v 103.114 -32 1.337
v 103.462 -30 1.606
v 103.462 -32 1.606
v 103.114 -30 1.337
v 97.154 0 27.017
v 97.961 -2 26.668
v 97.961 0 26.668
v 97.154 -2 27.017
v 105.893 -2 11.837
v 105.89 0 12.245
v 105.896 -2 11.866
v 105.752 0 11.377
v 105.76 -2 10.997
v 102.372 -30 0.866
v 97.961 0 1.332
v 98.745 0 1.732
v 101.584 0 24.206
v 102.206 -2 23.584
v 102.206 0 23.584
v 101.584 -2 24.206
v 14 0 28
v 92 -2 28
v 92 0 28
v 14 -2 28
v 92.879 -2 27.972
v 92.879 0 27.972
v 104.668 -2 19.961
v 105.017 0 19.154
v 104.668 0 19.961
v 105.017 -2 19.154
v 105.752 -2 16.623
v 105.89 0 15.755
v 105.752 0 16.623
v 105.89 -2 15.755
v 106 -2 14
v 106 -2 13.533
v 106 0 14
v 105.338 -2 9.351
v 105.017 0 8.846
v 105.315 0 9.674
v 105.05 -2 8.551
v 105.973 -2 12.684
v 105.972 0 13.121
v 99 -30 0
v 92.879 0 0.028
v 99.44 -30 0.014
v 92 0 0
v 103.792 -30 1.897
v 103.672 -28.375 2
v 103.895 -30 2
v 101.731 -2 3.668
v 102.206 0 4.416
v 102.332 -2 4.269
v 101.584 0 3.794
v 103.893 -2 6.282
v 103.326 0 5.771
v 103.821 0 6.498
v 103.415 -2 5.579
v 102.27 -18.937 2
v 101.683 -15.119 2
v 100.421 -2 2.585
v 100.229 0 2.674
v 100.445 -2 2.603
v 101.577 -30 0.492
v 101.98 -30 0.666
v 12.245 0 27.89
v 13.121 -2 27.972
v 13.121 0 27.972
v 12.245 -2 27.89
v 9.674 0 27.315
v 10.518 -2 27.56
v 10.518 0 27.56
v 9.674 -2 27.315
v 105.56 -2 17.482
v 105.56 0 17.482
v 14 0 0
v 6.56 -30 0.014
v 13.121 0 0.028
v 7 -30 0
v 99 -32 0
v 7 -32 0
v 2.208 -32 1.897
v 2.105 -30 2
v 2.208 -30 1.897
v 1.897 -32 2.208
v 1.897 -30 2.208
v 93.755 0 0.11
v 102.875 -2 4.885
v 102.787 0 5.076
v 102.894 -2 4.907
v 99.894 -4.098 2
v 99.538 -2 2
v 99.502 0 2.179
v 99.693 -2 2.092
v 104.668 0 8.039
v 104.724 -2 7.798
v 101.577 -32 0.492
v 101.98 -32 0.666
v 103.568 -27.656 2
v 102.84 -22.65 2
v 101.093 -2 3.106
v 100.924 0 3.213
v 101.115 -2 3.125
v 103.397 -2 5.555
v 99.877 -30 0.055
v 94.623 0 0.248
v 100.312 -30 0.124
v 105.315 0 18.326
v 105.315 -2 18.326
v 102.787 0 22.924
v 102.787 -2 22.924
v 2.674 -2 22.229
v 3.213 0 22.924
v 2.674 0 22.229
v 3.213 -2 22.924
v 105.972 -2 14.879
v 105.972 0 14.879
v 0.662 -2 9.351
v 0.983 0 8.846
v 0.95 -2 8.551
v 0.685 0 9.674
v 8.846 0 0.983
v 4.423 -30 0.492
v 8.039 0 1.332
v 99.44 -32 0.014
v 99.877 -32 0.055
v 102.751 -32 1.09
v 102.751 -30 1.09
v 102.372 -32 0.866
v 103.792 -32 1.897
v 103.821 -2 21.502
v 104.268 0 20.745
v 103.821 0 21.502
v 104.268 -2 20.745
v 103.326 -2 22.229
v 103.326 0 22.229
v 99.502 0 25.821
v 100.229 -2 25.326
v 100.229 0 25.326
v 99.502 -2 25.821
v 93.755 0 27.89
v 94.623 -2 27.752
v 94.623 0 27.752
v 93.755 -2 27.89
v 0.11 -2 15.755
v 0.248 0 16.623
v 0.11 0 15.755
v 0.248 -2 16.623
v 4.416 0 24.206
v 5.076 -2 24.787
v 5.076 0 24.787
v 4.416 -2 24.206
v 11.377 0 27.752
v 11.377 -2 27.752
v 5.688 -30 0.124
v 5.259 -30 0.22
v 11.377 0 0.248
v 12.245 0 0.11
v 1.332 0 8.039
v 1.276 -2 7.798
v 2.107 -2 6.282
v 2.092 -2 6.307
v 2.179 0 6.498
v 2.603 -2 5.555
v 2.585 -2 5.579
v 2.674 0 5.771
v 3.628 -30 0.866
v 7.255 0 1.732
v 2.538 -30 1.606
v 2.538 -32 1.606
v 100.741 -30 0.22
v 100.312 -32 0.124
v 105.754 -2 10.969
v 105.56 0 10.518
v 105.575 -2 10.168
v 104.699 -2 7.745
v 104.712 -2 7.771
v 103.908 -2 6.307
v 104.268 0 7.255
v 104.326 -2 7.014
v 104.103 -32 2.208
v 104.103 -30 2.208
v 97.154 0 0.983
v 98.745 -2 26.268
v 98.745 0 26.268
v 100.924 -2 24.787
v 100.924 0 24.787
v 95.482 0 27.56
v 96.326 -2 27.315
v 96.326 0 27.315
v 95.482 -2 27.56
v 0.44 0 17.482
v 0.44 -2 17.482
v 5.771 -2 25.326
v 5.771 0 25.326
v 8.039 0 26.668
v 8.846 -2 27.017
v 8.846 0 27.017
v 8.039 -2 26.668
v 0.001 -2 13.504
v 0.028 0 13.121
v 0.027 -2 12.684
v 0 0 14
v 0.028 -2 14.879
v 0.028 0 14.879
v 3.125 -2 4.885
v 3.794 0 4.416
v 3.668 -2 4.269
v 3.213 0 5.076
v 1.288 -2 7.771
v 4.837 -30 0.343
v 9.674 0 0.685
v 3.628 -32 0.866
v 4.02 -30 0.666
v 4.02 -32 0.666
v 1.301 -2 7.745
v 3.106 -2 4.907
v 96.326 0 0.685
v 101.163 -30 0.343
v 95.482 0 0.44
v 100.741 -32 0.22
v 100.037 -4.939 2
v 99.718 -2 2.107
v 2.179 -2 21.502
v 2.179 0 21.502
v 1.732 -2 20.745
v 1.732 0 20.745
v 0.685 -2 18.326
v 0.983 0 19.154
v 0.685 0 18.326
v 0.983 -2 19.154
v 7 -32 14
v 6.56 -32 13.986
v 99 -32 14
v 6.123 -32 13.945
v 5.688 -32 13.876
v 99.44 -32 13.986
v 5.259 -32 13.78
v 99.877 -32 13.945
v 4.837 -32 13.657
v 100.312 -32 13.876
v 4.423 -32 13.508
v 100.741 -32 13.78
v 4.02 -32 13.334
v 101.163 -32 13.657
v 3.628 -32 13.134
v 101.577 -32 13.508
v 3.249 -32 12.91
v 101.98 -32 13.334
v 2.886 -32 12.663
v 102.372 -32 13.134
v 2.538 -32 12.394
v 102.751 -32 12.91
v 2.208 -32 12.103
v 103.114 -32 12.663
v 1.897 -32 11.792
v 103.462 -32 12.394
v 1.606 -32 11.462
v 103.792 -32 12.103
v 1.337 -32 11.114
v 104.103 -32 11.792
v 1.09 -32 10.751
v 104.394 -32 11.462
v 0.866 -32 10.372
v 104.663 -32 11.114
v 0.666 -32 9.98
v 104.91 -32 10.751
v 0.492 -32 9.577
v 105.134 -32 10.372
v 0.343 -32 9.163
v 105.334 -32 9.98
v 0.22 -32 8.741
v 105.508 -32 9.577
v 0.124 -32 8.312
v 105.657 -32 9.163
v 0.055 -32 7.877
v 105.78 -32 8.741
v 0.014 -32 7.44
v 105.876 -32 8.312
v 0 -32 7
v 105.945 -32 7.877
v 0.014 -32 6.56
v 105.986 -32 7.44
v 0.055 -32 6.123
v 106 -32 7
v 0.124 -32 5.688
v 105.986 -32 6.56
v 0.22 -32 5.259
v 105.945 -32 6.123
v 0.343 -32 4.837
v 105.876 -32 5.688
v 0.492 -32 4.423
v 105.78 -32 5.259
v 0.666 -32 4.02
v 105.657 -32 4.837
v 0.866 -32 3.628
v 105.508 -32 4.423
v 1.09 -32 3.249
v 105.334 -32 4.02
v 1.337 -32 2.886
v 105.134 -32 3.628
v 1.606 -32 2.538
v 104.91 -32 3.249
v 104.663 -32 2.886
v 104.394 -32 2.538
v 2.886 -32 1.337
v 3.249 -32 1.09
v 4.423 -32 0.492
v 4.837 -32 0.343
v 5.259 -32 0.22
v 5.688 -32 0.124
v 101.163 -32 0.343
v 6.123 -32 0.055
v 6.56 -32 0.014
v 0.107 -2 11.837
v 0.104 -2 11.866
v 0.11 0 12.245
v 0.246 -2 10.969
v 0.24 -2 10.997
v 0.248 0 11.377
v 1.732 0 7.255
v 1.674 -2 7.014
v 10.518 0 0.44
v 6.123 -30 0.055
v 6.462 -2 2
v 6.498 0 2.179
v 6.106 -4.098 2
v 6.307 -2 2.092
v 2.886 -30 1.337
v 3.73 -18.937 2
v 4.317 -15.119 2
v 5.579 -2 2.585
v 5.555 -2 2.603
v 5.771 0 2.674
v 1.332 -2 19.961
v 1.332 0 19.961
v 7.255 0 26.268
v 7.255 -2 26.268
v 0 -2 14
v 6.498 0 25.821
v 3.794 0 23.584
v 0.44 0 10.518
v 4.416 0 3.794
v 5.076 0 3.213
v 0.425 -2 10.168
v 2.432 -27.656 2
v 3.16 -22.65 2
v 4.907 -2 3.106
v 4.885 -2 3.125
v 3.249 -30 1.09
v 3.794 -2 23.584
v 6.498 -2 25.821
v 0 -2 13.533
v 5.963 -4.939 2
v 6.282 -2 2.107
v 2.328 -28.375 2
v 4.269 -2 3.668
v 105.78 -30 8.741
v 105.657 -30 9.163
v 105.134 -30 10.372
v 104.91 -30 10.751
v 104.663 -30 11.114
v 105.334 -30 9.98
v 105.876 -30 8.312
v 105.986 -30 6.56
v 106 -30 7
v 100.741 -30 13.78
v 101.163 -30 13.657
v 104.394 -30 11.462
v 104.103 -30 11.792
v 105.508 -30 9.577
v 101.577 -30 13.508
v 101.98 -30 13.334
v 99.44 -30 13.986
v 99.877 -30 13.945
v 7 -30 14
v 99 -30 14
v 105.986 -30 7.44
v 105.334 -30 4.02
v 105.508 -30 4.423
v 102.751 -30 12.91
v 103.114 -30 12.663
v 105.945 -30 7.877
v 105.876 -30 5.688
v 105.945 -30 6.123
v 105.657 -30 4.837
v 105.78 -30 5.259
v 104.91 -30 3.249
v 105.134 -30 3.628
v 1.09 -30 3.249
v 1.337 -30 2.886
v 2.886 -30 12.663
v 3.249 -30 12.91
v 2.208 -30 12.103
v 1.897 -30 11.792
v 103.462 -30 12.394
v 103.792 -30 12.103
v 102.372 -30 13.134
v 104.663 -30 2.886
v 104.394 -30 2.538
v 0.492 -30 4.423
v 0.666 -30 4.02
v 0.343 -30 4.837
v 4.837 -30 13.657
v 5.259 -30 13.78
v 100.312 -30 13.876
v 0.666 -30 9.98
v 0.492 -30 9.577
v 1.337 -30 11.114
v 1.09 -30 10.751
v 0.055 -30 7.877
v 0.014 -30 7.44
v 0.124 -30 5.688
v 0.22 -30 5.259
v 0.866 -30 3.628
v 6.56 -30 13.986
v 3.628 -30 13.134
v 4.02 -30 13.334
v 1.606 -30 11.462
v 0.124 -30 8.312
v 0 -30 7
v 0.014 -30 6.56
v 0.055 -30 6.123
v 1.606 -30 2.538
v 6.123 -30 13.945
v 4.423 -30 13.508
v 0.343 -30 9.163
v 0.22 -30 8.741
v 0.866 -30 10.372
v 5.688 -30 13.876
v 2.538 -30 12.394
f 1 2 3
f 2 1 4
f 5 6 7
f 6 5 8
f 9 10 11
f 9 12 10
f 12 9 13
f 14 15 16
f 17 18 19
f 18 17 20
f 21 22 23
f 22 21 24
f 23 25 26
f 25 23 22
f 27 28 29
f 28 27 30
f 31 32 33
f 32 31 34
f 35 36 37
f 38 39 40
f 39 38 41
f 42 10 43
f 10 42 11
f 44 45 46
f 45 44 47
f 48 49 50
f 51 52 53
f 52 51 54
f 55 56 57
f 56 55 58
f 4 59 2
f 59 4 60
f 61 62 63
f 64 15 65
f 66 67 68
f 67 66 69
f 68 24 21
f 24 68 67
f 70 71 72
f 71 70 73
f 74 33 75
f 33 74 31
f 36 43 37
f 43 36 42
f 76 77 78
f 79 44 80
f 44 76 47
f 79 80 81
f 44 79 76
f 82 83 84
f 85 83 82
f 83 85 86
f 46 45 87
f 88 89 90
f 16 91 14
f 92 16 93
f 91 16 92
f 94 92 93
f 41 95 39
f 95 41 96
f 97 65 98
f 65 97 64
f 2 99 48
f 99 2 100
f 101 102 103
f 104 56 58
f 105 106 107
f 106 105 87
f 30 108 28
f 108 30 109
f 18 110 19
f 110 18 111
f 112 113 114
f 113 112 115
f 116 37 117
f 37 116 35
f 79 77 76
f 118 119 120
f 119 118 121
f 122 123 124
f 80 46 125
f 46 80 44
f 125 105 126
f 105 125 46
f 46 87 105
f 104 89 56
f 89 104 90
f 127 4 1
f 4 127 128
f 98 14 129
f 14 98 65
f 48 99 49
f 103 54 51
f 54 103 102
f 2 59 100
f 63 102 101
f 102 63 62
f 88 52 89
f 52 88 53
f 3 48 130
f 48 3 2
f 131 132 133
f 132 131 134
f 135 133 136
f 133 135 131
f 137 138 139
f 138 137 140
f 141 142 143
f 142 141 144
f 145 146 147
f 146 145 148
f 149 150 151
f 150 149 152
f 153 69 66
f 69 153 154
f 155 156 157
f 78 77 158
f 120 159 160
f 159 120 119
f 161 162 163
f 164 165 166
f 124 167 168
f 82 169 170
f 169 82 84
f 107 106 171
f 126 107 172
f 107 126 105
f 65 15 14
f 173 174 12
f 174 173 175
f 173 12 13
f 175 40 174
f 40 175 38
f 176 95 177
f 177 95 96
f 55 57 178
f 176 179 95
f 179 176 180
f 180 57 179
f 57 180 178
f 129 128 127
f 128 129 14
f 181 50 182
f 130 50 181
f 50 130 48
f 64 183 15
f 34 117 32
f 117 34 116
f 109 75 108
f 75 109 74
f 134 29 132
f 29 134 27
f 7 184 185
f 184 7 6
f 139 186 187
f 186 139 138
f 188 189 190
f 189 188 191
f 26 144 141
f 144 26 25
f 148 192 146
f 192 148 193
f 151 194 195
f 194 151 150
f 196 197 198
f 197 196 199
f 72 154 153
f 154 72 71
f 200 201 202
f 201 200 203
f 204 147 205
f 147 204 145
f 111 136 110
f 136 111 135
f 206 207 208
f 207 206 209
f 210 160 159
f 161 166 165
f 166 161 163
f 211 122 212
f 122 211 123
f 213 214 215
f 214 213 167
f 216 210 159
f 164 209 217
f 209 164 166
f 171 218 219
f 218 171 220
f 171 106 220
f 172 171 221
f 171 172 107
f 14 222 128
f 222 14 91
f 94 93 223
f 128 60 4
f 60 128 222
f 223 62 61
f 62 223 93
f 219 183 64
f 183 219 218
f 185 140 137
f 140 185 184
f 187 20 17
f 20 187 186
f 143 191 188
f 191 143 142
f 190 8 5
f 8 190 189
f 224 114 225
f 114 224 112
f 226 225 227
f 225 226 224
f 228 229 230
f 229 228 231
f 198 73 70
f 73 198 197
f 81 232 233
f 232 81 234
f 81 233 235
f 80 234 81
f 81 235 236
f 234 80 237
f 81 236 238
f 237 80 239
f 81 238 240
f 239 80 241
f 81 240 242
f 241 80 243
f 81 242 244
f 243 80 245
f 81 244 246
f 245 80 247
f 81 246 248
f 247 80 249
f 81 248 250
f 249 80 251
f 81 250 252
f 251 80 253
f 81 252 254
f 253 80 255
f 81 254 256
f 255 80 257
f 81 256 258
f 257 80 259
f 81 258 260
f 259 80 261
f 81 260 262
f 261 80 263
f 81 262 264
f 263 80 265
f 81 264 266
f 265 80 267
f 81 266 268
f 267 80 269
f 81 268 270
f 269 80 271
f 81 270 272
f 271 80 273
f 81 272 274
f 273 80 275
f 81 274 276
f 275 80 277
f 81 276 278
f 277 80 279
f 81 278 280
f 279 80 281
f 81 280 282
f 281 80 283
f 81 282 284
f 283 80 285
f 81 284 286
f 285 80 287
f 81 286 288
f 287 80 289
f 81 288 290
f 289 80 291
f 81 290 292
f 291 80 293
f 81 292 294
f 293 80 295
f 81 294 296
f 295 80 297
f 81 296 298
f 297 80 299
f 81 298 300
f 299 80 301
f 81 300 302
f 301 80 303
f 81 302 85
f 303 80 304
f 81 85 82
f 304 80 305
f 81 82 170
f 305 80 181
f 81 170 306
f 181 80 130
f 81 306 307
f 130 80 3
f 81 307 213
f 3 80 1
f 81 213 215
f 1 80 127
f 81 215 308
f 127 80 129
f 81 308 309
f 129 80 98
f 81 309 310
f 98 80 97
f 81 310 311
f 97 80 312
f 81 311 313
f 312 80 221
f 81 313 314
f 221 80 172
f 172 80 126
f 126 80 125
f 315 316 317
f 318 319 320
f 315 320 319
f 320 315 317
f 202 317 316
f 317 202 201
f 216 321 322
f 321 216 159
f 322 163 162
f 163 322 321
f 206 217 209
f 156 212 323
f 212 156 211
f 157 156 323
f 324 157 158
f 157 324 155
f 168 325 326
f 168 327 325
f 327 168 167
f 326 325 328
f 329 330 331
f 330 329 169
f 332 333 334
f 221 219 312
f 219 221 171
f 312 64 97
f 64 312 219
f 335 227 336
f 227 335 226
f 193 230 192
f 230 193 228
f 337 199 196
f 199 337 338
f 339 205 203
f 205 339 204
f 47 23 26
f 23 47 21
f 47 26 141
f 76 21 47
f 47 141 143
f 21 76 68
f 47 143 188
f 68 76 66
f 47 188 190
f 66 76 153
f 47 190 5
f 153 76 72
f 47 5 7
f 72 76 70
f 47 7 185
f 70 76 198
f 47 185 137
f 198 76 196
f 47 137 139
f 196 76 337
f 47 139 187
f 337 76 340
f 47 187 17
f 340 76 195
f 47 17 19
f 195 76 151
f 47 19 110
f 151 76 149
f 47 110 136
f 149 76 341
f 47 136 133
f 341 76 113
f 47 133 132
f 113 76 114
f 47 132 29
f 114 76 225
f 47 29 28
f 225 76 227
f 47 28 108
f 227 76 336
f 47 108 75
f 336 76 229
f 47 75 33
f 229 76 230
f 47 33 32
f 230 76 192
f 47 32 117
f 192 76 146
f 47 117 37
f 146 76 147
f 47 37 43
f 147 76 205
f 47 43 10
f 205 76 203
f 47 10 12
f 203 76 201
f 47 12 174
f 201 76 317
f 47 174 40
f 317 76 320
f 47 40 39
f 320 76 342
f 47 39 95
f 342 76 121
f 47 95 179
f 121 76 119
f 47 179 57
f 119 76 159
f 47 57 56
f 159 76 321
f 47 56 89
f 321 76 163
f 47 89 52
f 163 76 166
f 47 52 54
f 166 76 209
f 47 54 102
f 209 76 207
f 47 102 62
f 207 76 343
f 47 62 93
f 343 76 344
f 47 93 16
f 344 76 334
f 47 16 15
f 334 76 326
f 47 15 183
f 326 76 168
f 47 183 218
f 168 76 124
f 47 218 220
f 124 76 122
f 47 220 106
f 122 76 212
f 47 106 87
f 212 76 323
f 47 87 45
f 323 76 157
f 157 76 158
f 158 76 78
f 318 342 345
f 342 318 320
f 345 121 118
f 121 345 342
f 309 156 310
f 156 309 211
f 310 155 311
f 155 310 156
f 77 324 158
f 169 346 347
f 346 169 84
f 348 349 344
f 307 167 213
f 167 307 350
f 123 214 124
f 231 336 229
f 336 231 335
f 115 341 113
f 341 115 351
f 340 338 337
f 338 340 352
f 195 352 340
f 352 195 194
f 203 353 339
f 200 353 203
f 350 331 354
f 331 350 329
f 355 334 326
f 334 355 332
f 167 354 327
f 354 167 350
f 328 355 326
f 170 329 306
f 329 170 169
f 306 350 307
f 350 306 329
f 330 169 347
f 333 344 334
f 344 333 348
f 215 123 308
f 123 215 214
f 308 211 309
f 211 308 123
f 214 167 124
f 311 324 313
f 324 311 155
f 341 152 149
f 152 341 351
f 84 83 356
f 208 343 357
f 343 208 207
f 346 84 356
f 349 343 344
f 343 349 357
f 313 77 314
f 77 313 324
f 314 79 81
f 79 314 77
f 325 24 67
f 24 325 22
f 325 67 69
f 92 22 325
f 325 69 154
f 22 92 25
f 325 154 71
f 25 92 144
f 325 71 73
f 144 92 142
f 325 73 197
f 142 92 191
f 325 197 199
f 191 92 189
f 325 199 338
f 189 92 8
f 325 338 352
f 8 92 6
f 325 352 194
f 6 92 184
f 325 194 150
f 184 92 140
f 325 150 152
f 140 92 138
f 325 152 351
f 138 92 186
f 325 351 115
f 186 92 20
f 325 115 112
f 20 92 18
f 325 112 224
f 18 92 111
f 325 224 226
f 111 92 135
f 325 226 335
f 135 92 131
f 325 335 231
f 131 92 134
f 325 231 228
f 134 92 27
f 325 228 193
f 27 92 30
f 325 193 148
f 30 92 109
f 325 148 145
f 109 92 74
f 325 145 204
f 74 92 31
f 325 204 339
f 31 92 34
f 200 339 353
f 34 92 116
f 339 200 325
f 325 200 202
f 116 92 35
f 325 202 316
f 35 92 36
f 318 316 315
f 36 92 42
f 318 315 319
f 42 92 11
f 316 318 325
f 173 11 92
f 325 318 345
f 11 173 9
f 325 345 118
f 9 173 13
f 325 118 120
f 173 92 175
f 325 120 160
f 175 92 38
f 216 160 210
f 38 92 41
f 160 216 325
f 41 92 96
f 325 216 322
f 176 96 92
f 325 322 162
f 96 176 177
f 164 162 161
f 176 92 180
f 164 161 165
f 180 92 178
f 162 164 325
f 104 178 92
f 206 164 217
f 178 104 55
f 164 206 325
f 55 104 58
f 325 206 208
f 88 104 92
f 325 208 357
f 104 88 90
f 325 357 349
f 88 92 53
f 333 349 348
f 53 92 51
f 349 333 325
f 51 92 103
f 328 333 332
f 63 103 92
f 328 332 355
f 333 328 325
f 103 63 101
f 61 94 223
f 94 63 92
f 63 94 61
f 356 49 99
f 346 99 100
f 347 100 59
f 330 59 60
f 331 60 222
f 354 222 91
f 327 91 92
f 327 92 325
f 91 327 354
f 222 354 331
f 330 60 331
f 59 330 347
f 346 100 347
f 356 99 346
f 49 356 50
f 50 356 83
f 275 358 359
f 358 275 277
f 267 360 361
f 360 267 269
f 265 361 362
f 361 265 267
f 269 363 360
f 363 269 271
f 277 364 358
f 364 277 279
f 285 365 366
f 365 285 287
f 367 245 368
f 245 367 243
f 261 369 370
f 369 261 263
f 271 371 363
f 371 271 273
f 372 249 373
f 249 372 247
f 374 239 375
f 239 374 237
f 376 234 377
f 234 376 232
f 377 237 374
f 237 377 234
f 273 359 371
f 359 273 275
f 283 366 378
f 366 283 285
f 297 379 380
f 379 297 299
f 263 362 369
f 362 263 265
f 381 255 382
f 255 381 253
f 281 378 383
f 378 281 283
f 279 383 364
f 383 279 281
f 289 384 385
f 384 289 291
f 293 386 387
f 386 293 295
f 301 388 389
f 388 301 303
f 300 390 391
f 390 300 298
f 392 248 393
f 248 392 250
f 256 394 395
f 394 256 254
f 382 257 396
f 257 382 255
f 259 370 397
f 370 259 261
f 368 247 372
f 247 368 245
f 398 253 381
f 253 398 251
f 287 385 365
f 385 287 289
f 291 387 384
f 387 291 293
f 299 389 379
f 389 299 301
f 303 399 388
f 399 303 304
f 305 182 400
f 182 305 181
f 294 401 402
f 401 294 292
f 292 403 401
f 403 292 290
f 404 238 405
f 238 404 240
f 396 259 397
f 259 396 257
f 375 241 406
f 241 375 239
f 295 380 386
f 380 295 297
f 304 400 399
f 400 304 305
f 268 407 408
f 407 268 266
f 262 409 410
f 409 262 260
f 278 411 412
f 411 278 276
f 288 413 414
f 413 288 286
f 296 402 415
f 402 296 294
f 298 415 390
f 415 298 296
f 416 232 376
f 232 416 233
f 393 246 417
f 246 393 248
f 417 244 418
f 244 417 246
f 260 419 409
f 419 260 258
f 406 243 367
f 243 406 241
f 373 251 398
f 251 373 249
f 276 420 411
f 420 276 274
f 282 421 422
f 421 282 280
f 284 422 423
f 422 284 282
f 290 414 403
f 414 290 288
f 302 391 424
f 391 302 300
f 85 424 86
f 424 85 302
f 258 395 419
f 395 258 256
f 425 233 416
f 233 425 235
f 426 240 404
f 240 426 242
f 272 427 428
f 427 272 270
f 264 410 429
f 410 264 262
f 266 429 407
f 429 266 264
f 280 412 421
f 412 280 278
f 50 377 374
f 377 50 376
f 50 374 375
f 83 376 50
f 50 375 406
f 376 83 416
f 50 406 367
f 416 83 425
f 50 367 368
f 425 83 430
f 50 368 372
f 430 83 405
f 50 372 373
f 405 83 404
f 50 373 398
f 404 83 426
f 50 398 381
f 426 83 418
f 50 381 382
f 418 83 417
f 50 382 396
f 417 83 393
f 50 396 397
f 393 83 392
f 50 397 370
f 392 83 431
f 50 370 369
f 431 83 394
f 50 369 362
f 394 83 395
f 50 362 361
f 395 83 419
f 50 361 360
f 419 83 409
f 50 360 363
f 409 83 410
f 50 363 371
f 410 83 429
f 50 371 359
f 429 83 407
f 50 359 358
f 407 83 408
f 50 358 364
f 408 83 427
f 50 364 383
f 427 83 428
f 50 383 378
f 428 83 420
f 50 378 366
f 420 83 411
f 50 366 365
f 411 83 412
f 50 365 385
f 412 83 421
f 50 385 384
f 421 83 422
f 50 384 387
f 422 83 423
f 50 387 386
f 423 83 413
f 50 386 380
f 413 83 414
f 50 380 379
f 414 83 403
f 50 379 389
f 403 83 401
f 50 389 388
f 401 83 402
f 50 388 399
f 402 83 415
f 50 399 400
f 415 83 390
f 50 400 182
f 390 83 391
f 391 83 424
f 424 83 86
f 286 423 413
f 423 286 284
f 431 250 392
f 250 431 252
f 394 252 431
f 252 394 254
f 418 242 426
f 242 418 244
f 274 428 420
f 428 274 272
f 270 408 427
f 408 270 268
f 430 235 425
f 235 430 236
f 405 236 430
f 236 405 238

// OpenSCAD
extra = 2;
thick = 2;

wide = 102 + extra * 2;
deep = 28 + extra + thick * 2;
port = 15 + extra * 2;
frontHeight = 26 + thick;
backHeight = frontHeight / 2;

difference()
{
    rotate([90, 0, 0])
    {
        hull()
        {
            translate([0, frontHeight / 2, 0])
            {
                translate([frontHeight / 2, 0, 0])
                {
                    cylinder(d = frontHeight, h = thick, $fn = 100);
                }
                translate([wide - frontHeight / 2, 0, 0])
                {
                    cylinder(d = frontHeight, h = thick, $fn = 100);
                }
            }
            translate([0, backHeight / 2, deep - thick * 2])
            {
                translate([backHeight / 2, 0, 0])
                {
                    cylinder(d = backHeight, h = thick, $fn = 100);
                }
                translate([wide - backHeight / 2, 0, 0])
                {
                    cylinder(d = backHeight, h = thick, $fn = 100);
                }
            }
        }
    }
    translate([0, thick - deep, thick])
    {
        cube([wide, deep - thick * 2, frontHeight]);
    }
}

rotate([90, 0, 0])
hull()
{
    translate([0, backHeight / 2, deep - thick * 2])
    {
        translate([backHeight / 2, 0, 0])
        {
            cylinder(d = backHeight, h = thick, $fn = 100);
        }
        translate([wide - backHeight / 2, 0, 0])
        {
            cylinder(d = backHeight, h = thick, $fn = 100);
        }
    }
}
